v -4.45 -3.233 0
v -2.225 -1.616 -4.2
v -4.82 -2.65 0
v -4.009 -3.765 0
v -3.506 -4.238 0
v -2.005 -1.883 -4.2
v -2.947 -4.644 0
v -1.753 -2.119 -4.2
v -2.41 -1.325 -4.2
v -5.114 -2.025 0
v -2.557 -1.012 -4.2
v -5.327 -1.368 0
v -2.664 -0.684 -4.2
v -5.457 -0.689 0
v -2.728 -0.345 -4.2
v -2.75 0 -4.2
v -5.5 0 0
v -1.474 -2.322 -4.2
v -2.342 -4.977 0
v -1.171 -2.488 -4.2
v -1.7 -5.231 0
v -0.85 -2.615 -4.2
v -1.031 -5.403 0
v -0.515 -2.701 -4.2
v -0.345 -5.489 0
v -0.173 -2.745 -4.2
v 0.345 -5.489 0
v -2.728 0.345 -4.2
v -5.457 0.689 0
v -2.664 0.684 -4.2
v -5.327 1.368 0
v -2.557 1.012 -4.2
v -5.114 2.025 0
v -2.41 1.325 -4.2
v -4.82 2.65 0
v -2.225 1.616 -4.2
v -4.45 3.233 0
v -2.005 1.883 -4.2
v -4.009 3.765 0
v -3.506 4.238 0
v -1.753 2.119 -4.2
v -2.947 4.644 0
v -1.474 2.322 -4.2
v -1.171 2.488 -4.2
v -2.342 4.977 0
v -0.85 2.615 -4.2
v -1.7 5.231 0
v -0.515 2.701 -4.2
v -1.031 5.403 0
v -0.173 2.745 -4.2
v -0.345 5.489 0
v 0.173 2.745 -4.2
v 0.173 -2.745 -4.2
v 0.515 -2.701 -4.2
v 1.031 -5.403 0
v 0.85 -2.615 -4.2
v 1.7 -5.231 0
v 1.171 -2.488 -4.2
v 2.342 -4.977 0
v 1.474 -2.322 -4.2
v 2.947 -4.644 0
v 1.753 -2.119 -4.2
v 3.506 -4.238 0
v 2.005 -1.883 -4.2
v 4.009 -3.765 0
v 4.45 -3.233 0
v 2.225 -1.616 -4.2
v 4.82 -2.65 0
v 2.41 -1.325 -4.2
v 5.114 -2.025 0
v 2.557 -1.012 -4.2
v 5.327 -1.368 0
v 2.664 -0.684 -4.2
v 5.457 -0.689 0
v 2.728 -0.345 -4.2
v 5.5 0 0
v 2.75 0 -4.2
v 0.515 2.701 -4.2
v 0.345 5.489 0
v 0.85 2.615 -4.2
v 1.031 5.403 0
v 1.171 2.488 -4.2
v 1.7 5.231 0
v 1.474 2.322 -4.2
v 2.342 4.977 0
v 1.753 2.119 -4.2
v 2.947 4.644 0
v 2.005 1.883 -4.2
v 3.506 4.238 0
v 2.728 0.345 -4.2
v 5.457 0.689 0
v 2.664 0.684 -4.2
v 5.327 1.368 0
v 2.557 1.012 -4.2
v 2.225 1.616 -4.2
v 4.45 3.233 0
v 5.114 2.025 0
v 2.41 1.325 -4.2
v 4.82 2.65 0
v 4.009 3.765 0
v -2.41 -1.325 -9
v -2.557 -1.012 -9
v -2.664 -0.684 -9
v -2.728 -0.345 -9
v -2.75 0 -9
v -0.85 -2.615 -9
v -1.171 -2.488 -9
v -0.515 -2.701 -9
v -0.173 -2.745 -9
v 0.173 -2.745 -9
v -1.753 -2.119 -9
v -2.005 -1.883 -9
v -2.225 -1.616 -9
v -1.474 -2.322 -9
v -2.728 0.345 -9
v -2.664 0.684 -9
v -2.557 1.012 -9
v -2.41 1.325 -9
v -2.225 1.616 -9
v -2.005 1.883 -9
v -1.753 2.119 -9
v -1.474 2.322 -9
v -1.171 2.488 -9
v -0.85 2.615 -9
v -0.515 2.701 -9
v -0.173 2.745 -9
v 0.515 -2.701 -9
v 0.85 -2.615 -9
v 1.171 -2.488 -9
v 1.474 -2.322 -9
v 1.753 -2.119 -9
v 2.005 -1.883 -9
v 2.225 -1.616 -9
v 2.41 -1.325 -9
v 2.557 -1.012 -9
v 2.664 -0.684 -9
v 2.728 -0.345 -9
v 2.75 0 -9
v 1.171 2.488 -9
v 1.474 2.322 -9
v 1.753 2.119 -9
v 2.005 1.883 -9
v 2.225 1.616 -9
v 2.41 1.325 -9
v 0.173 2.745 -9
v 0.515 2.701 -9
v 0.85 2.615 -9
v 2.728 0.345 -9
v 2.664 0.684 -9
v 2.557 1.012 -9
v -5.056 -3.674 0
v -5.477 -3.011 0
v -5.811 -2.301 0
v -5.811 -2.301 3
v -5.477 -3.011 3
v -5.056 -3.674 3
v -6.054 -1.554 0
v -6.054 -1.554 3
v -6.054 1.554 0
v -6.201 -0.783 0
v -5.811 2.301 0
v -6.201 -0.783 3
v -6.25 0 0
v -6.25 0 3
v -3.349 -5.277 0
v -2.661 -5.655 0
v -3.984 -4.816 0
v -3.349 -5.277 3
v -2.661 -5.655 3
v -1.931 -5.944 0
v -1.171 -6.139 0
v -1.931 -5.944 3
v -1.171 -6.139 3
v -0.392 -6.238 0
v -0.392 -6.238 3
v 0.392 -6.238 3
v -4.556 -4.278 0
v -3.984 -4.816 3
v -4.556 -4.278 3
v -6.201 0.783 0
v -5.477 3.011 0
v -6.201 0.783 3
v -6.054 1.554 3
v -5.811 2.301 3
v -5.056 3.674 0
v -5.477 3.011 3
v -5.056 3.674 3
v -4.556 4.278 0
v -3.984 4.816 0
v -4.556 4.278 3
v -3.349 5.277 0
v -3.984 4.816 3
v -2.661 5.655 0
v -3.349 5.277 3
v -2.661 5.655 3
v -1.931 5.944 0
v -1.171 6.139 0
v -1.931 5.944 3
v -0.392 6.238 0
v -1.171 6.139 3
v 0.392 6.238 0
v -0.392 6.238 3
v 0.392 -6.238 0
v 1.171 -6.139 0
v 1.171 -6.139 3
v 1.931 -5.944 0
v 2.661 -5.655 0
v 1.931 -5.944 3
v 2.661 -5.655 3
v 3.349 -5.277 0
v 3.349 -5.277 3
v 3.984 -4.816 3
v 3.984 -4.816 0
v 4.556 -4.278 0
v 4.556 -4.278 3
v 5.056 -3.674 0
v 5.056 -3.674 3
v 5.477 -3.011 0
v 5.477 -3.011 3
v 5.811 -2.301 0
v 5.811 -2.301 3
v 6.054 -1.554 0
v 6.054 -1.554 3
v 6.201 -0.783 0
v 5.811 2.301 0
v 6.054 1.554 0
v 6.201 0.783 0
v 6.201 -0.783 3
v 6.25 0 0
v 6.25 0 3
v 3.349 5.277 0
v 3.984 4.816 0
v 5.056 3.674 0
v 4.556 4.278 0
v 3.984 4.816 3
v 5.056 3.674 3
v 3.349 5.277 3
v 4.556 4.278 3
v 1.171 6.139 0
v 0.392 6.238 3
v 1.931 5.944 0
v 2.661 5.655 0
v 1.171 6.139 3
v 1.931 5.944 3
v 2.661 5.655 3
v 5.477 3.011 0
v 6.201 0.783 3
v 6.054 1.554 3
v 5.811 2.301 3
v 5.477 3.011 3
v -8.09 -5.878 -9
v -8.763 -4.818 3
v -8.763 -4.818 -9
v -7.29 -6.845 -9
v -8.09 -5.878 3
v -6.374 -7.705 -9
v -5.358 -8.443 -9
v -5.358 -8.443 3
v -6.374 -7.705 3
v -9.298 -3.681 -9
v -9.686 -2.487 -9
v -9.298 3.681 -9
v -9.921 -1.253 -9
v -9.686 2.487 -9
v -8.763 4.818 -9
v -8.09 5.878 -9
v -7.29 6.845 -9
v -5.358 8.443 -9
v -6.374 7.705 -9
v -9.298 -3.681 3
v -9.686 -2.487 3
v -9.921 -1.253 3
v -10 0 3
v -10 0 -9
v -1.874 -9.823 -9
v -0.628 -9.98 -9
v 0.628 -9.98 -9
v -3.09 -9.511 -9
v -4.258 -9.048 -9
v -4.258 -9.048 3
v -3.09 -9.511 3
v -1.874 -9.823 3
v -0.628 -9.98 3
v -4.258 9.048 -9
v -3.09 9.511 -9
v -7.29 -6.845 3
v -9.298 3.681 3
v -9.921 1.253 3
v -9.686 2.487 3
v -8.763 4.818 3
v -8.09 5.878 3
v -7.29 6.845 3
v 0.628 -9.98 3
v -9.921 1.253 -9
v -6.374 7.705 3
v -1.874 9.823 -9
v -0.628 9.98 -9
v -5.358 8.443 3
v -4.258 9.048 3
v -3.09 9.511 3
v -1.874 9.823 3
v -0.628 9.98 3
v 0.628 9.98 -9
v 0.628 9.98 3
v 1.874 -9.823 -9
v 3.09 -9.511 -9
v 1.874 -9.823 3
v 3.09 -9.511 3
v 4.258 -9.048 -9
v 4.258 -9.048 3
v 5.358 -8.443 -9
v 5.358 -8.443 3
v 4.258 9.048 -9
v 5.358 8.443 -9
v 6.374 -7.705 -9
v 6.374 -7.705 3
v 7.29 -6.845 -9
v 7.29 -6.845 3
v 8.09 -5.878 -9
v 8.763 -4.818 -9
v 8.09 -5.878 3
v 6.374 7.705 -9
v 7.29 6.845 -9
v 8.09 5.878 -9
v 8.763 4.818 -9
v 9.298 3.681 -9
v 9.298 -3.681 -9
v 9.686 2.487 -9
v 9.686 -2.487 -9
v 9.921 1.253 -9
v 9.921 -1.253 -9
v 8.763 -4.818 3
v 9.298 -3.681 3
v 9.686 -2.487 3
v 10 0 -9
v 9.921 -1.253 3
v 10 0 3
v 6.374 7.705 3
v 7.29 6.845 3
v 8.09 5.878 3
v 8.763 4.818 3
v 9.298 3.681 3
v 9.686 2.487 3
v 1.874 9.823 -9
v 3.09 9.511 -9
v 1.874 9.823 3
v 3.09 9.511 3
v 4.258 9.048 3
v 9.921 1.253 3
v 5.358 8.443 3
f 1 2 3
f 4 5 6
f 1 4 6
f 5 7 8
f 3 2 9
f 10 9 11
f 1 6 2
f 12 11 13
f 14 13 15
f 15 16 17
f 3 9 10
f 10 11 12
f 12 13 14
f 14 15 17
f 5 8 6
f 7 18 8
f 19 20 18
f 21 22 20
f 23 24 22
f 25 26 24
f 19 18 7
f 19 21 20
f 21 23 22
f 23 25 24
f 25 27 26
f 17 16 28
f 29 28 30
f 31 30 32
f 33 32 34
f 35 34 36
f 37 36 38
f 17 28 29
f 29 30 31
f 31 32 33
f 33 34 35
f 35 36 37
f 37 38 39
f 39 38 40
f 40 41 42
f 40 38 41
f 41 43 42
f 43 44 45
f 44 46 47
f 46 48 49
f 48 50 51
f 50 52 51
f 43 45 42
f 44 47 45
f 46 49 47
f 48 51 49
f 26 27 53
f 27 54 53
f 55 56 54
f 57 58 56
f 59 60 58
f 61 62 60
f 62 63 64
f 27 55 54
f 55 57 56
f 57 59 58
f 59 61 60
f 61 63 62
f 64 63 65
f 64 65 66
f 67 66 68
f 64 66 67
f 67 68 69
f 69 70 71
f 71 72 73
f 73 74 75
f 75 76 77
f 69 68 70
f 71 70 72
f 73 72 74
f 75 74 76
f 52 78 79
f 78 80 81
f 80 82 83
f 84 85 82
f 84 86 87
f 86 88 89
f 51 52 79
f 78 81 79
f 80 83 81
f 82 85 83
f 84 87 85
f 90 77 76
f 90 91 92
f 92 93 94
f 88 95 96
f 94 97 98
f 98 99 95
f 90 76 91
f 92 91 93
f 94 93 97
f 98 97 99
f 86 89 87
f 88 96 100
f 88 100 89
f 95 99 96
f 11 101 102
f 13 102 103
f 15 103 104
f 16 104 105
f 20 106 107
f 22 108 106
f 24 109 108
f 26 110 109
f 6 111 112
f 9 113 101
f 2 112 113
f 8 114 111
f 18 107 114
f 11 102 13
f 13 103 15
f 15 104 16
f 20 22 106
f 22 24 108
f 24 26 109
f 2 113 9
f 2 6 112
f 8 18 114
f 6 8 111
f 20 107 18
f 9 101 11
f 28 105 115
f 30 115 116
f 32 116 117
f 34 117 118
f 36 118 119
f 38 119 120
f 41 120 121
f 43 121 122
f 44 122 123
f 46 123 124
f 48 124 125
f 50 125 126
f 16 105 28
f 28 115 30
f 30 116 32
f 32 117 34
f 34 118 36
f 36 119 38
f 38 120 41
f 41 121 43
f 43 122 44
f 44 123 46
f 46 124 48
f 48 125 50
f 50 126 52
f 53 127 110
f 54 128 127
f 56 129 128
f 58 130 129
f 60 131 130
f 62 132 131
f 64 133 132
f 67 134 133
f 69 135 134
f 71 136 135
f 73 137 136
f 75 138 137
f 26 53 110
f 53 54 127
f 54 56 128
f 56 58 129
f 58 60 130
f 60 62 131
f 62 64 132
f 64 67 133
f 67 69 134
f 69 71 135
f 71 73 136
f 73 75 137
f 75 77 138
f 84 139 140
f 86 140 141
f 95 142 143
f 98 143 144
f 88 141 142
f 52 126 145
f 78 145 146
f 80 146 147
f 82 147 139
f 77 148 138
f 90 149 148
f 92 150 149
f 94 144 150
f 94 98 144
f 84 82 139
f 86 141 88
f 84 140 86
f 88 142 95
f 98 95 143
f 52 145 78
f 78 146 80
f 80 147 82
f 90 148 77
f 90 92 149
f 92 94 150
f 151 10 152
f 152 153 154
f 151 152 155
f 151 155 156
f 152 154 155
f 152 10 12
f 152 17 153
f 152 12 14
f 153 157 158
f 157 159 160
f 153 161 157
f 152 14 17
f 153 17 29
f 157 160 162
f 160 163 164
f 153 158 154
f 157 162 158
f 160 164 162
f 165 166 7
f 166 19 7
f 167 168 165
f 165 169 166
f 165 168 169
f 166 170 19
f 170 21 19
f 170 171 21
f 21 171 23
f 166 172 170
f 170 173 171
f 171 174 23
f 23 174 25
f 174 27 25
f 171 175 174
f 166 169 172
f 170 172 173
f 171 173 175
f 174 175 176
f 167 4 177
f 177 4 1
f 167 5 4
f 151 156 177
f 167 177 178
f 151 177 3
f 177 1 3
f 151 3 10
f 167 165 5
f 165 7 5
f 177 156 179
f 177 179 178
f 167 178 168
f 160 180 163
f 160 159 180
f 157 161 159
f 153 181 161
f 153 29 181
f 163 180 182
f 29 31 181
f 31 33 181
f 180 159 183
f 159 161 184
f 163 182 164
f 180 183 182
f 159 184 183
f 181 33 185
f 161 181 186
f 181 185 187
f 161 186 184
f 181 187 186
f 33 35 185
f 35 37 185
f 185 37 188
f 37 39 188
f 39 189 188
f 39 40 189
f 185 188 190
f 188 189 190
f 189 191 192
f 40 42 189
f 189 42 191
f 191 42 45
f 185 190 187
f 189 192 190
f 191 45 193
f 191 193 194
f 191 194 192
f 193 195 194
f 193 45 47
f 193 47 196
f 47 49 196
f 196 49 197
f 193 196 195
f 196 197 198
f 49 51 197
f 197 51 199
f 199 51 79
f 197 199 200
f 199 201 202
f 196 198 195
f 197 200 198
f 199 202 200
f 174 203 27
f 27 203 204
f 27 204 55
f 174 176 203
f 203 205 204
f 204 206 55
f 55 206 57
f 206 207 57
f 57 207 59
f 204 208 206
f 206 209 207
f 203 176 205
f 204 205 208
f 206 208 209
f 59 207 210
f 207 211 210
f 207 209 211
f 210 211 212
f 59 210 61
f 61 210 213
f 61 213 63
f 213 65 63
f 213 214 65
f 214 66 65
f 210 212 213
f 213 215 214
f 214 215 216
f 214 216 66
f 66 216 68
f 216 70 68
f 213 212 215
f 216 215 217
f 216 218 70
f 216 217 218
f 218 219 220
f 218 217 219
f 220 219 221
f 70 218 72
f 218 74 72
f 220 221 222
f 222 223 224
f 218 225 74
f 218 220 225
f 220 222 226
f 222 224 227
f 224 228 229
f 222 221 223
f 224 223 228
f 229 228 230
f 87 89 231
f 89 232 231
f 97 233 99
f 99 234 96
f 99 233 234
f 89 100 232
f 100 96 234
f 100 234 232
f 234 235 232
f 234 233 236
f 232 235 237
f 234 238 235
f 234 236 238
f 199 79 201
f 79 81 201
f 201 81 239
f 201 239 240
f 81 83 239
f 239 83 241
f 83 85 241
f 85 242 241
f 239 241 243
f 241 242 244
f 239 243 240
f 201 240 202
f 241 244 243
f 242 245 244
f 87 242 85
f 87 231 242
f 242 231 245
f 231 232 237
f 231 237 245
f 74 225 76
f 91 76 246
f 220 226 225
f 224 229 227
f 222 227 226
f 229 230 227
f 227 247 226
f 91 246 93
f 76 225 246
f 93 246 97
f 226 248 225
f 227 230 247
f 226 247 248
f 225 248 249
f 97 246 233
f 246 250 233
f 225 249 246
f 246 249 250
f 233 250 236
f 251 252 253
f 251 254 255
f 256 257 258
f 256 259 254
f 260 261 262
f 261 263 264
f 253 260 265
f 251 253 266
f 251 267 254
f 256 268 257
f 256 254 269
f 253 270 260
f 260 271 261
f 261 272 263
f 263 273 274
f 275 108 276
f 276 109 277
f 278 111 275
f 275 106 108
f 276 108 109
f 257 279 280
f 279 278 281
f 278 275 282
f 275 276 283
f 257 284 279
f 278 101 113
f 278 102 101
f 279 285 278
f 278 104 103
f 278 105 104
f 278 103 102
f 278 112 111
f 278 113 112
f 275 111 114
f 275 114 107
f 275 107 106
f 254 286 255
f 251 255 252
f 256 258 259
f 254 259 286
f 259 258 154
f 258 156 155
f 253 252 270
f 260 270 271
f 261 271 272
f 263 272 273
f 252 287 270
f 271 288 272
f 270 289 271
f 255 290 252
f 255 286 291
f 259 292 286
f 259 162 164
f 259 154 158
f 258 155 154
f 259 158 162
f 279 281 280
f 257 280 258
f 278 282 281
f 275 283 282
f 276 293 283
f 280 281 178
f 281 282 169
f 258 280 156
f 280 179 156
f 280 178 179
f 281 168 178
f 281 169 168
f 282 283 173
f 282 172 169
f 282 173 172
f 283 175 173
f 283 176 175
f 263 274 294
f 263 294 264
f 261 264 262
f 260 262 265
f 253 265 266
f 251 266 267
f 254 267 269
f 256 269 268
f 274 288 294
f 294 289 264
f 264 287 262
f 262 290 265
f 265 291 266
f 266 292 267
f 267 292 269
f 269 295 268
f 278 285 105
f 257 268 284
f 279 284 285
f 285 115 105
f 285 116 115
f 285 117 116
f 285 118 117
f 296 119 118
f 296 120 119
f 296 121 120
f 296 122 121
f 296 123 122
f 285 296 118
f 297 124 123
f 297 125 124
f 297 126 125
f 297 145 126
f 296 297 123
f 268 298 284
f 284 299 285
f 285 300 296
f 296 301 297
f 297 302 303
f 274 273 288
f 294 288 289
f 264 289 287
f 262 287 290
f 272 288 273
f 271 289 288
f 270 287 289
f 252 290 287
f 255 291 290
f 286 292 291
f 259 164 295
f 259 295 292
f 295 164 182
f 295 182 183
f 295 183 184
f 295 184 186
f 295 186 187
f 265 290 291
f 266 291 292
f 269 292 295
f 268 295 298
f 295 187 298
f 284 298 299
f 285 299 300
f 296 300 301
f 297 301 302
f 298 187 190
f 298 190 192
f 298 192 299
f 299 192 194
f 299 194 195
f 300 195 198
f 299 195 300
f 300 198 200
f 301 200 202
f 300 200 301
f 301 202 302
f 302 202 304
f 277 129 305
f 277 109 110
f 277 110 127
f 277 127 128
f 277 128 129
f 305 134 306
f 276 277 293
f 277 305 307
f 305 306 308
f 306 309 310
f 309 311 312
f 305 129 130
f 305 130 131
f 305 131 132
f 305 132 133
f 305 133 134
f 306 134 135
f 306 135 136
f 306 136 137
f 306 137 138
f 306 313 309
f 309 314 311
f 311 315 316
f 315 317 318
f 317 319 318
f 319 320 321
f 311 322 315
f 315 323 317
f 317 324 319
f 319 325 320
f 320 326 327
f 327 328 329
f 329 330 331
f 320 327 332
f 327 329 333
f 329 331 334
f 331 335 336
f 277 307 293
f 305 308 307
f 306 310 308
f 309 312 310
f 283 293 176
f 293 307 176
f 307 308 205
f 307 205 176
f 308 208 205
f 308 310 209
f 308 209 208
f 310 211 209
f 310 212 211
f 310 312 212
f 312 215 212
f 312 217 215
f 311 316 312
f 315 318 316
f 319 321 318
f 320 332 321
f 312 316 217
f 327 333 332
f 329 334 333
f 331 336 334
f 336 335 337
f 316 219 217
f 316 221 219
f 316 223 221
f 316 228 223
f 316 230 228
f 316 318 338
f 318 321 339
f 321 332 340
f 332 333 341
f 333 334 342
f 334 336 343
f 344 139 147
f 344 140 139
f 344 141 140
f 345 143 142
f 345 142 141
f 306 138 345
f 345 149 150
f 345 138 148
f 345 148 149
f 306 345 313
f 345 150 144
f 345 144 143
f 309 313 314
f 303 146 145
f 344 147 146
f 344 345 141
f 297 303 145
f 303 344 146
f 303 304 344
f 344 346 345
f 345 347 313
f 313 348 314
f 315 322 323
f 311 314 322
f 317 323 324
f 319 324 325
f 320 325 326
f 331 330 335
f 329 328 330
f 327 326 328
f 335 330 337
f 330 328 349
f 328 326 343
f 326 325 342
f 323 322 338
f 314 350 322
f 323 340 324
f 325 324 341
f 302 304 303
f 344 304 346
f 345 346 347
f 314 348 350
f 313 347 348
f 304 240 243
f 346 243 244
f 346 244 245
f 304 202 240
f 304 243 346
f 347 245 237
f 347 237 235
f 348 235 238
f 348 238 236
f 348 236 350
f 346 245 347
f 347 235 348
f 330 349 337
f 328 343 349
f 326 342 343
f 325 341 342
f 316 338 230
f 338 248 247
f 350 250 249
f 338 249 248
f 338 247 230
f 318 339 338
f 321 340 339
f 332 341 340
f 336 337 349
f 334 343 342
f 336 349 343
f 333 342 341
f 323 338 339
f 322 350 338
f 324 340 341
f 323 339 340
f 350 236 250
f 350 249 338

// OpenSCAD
$fn = 50;

difference() {
	union() {
		translate(v = [0, 0, -9.0]) {
			cylinder(h = 12, r = 10.0);
		}
	}
	union() {
		translate(v = [0, 0, 0]) {
			rotate(a = [0, 0, 0]) {
				difference() {
					union() {
						translate(v = [0, 0, -12.0]) {
							cylinder(h = 12, r = 2.25);
						}
						translate(v = [0, 0, -4.2]) {
							cylinder(h = 4.2, r1 = 2.75, r2 = 5.5);
						}
						translate(v = [0, 0, -12.0]) {
							cylinder(h = 12, r = 2.75);
						}
						translate(v = [0, 0, -12.0]) {
							cylinder(h = 12, r = 2.25);
						}
					}
					union();
				}
			}
		}
		#cylinder(h = 3, r = 6.25);
	}
}
